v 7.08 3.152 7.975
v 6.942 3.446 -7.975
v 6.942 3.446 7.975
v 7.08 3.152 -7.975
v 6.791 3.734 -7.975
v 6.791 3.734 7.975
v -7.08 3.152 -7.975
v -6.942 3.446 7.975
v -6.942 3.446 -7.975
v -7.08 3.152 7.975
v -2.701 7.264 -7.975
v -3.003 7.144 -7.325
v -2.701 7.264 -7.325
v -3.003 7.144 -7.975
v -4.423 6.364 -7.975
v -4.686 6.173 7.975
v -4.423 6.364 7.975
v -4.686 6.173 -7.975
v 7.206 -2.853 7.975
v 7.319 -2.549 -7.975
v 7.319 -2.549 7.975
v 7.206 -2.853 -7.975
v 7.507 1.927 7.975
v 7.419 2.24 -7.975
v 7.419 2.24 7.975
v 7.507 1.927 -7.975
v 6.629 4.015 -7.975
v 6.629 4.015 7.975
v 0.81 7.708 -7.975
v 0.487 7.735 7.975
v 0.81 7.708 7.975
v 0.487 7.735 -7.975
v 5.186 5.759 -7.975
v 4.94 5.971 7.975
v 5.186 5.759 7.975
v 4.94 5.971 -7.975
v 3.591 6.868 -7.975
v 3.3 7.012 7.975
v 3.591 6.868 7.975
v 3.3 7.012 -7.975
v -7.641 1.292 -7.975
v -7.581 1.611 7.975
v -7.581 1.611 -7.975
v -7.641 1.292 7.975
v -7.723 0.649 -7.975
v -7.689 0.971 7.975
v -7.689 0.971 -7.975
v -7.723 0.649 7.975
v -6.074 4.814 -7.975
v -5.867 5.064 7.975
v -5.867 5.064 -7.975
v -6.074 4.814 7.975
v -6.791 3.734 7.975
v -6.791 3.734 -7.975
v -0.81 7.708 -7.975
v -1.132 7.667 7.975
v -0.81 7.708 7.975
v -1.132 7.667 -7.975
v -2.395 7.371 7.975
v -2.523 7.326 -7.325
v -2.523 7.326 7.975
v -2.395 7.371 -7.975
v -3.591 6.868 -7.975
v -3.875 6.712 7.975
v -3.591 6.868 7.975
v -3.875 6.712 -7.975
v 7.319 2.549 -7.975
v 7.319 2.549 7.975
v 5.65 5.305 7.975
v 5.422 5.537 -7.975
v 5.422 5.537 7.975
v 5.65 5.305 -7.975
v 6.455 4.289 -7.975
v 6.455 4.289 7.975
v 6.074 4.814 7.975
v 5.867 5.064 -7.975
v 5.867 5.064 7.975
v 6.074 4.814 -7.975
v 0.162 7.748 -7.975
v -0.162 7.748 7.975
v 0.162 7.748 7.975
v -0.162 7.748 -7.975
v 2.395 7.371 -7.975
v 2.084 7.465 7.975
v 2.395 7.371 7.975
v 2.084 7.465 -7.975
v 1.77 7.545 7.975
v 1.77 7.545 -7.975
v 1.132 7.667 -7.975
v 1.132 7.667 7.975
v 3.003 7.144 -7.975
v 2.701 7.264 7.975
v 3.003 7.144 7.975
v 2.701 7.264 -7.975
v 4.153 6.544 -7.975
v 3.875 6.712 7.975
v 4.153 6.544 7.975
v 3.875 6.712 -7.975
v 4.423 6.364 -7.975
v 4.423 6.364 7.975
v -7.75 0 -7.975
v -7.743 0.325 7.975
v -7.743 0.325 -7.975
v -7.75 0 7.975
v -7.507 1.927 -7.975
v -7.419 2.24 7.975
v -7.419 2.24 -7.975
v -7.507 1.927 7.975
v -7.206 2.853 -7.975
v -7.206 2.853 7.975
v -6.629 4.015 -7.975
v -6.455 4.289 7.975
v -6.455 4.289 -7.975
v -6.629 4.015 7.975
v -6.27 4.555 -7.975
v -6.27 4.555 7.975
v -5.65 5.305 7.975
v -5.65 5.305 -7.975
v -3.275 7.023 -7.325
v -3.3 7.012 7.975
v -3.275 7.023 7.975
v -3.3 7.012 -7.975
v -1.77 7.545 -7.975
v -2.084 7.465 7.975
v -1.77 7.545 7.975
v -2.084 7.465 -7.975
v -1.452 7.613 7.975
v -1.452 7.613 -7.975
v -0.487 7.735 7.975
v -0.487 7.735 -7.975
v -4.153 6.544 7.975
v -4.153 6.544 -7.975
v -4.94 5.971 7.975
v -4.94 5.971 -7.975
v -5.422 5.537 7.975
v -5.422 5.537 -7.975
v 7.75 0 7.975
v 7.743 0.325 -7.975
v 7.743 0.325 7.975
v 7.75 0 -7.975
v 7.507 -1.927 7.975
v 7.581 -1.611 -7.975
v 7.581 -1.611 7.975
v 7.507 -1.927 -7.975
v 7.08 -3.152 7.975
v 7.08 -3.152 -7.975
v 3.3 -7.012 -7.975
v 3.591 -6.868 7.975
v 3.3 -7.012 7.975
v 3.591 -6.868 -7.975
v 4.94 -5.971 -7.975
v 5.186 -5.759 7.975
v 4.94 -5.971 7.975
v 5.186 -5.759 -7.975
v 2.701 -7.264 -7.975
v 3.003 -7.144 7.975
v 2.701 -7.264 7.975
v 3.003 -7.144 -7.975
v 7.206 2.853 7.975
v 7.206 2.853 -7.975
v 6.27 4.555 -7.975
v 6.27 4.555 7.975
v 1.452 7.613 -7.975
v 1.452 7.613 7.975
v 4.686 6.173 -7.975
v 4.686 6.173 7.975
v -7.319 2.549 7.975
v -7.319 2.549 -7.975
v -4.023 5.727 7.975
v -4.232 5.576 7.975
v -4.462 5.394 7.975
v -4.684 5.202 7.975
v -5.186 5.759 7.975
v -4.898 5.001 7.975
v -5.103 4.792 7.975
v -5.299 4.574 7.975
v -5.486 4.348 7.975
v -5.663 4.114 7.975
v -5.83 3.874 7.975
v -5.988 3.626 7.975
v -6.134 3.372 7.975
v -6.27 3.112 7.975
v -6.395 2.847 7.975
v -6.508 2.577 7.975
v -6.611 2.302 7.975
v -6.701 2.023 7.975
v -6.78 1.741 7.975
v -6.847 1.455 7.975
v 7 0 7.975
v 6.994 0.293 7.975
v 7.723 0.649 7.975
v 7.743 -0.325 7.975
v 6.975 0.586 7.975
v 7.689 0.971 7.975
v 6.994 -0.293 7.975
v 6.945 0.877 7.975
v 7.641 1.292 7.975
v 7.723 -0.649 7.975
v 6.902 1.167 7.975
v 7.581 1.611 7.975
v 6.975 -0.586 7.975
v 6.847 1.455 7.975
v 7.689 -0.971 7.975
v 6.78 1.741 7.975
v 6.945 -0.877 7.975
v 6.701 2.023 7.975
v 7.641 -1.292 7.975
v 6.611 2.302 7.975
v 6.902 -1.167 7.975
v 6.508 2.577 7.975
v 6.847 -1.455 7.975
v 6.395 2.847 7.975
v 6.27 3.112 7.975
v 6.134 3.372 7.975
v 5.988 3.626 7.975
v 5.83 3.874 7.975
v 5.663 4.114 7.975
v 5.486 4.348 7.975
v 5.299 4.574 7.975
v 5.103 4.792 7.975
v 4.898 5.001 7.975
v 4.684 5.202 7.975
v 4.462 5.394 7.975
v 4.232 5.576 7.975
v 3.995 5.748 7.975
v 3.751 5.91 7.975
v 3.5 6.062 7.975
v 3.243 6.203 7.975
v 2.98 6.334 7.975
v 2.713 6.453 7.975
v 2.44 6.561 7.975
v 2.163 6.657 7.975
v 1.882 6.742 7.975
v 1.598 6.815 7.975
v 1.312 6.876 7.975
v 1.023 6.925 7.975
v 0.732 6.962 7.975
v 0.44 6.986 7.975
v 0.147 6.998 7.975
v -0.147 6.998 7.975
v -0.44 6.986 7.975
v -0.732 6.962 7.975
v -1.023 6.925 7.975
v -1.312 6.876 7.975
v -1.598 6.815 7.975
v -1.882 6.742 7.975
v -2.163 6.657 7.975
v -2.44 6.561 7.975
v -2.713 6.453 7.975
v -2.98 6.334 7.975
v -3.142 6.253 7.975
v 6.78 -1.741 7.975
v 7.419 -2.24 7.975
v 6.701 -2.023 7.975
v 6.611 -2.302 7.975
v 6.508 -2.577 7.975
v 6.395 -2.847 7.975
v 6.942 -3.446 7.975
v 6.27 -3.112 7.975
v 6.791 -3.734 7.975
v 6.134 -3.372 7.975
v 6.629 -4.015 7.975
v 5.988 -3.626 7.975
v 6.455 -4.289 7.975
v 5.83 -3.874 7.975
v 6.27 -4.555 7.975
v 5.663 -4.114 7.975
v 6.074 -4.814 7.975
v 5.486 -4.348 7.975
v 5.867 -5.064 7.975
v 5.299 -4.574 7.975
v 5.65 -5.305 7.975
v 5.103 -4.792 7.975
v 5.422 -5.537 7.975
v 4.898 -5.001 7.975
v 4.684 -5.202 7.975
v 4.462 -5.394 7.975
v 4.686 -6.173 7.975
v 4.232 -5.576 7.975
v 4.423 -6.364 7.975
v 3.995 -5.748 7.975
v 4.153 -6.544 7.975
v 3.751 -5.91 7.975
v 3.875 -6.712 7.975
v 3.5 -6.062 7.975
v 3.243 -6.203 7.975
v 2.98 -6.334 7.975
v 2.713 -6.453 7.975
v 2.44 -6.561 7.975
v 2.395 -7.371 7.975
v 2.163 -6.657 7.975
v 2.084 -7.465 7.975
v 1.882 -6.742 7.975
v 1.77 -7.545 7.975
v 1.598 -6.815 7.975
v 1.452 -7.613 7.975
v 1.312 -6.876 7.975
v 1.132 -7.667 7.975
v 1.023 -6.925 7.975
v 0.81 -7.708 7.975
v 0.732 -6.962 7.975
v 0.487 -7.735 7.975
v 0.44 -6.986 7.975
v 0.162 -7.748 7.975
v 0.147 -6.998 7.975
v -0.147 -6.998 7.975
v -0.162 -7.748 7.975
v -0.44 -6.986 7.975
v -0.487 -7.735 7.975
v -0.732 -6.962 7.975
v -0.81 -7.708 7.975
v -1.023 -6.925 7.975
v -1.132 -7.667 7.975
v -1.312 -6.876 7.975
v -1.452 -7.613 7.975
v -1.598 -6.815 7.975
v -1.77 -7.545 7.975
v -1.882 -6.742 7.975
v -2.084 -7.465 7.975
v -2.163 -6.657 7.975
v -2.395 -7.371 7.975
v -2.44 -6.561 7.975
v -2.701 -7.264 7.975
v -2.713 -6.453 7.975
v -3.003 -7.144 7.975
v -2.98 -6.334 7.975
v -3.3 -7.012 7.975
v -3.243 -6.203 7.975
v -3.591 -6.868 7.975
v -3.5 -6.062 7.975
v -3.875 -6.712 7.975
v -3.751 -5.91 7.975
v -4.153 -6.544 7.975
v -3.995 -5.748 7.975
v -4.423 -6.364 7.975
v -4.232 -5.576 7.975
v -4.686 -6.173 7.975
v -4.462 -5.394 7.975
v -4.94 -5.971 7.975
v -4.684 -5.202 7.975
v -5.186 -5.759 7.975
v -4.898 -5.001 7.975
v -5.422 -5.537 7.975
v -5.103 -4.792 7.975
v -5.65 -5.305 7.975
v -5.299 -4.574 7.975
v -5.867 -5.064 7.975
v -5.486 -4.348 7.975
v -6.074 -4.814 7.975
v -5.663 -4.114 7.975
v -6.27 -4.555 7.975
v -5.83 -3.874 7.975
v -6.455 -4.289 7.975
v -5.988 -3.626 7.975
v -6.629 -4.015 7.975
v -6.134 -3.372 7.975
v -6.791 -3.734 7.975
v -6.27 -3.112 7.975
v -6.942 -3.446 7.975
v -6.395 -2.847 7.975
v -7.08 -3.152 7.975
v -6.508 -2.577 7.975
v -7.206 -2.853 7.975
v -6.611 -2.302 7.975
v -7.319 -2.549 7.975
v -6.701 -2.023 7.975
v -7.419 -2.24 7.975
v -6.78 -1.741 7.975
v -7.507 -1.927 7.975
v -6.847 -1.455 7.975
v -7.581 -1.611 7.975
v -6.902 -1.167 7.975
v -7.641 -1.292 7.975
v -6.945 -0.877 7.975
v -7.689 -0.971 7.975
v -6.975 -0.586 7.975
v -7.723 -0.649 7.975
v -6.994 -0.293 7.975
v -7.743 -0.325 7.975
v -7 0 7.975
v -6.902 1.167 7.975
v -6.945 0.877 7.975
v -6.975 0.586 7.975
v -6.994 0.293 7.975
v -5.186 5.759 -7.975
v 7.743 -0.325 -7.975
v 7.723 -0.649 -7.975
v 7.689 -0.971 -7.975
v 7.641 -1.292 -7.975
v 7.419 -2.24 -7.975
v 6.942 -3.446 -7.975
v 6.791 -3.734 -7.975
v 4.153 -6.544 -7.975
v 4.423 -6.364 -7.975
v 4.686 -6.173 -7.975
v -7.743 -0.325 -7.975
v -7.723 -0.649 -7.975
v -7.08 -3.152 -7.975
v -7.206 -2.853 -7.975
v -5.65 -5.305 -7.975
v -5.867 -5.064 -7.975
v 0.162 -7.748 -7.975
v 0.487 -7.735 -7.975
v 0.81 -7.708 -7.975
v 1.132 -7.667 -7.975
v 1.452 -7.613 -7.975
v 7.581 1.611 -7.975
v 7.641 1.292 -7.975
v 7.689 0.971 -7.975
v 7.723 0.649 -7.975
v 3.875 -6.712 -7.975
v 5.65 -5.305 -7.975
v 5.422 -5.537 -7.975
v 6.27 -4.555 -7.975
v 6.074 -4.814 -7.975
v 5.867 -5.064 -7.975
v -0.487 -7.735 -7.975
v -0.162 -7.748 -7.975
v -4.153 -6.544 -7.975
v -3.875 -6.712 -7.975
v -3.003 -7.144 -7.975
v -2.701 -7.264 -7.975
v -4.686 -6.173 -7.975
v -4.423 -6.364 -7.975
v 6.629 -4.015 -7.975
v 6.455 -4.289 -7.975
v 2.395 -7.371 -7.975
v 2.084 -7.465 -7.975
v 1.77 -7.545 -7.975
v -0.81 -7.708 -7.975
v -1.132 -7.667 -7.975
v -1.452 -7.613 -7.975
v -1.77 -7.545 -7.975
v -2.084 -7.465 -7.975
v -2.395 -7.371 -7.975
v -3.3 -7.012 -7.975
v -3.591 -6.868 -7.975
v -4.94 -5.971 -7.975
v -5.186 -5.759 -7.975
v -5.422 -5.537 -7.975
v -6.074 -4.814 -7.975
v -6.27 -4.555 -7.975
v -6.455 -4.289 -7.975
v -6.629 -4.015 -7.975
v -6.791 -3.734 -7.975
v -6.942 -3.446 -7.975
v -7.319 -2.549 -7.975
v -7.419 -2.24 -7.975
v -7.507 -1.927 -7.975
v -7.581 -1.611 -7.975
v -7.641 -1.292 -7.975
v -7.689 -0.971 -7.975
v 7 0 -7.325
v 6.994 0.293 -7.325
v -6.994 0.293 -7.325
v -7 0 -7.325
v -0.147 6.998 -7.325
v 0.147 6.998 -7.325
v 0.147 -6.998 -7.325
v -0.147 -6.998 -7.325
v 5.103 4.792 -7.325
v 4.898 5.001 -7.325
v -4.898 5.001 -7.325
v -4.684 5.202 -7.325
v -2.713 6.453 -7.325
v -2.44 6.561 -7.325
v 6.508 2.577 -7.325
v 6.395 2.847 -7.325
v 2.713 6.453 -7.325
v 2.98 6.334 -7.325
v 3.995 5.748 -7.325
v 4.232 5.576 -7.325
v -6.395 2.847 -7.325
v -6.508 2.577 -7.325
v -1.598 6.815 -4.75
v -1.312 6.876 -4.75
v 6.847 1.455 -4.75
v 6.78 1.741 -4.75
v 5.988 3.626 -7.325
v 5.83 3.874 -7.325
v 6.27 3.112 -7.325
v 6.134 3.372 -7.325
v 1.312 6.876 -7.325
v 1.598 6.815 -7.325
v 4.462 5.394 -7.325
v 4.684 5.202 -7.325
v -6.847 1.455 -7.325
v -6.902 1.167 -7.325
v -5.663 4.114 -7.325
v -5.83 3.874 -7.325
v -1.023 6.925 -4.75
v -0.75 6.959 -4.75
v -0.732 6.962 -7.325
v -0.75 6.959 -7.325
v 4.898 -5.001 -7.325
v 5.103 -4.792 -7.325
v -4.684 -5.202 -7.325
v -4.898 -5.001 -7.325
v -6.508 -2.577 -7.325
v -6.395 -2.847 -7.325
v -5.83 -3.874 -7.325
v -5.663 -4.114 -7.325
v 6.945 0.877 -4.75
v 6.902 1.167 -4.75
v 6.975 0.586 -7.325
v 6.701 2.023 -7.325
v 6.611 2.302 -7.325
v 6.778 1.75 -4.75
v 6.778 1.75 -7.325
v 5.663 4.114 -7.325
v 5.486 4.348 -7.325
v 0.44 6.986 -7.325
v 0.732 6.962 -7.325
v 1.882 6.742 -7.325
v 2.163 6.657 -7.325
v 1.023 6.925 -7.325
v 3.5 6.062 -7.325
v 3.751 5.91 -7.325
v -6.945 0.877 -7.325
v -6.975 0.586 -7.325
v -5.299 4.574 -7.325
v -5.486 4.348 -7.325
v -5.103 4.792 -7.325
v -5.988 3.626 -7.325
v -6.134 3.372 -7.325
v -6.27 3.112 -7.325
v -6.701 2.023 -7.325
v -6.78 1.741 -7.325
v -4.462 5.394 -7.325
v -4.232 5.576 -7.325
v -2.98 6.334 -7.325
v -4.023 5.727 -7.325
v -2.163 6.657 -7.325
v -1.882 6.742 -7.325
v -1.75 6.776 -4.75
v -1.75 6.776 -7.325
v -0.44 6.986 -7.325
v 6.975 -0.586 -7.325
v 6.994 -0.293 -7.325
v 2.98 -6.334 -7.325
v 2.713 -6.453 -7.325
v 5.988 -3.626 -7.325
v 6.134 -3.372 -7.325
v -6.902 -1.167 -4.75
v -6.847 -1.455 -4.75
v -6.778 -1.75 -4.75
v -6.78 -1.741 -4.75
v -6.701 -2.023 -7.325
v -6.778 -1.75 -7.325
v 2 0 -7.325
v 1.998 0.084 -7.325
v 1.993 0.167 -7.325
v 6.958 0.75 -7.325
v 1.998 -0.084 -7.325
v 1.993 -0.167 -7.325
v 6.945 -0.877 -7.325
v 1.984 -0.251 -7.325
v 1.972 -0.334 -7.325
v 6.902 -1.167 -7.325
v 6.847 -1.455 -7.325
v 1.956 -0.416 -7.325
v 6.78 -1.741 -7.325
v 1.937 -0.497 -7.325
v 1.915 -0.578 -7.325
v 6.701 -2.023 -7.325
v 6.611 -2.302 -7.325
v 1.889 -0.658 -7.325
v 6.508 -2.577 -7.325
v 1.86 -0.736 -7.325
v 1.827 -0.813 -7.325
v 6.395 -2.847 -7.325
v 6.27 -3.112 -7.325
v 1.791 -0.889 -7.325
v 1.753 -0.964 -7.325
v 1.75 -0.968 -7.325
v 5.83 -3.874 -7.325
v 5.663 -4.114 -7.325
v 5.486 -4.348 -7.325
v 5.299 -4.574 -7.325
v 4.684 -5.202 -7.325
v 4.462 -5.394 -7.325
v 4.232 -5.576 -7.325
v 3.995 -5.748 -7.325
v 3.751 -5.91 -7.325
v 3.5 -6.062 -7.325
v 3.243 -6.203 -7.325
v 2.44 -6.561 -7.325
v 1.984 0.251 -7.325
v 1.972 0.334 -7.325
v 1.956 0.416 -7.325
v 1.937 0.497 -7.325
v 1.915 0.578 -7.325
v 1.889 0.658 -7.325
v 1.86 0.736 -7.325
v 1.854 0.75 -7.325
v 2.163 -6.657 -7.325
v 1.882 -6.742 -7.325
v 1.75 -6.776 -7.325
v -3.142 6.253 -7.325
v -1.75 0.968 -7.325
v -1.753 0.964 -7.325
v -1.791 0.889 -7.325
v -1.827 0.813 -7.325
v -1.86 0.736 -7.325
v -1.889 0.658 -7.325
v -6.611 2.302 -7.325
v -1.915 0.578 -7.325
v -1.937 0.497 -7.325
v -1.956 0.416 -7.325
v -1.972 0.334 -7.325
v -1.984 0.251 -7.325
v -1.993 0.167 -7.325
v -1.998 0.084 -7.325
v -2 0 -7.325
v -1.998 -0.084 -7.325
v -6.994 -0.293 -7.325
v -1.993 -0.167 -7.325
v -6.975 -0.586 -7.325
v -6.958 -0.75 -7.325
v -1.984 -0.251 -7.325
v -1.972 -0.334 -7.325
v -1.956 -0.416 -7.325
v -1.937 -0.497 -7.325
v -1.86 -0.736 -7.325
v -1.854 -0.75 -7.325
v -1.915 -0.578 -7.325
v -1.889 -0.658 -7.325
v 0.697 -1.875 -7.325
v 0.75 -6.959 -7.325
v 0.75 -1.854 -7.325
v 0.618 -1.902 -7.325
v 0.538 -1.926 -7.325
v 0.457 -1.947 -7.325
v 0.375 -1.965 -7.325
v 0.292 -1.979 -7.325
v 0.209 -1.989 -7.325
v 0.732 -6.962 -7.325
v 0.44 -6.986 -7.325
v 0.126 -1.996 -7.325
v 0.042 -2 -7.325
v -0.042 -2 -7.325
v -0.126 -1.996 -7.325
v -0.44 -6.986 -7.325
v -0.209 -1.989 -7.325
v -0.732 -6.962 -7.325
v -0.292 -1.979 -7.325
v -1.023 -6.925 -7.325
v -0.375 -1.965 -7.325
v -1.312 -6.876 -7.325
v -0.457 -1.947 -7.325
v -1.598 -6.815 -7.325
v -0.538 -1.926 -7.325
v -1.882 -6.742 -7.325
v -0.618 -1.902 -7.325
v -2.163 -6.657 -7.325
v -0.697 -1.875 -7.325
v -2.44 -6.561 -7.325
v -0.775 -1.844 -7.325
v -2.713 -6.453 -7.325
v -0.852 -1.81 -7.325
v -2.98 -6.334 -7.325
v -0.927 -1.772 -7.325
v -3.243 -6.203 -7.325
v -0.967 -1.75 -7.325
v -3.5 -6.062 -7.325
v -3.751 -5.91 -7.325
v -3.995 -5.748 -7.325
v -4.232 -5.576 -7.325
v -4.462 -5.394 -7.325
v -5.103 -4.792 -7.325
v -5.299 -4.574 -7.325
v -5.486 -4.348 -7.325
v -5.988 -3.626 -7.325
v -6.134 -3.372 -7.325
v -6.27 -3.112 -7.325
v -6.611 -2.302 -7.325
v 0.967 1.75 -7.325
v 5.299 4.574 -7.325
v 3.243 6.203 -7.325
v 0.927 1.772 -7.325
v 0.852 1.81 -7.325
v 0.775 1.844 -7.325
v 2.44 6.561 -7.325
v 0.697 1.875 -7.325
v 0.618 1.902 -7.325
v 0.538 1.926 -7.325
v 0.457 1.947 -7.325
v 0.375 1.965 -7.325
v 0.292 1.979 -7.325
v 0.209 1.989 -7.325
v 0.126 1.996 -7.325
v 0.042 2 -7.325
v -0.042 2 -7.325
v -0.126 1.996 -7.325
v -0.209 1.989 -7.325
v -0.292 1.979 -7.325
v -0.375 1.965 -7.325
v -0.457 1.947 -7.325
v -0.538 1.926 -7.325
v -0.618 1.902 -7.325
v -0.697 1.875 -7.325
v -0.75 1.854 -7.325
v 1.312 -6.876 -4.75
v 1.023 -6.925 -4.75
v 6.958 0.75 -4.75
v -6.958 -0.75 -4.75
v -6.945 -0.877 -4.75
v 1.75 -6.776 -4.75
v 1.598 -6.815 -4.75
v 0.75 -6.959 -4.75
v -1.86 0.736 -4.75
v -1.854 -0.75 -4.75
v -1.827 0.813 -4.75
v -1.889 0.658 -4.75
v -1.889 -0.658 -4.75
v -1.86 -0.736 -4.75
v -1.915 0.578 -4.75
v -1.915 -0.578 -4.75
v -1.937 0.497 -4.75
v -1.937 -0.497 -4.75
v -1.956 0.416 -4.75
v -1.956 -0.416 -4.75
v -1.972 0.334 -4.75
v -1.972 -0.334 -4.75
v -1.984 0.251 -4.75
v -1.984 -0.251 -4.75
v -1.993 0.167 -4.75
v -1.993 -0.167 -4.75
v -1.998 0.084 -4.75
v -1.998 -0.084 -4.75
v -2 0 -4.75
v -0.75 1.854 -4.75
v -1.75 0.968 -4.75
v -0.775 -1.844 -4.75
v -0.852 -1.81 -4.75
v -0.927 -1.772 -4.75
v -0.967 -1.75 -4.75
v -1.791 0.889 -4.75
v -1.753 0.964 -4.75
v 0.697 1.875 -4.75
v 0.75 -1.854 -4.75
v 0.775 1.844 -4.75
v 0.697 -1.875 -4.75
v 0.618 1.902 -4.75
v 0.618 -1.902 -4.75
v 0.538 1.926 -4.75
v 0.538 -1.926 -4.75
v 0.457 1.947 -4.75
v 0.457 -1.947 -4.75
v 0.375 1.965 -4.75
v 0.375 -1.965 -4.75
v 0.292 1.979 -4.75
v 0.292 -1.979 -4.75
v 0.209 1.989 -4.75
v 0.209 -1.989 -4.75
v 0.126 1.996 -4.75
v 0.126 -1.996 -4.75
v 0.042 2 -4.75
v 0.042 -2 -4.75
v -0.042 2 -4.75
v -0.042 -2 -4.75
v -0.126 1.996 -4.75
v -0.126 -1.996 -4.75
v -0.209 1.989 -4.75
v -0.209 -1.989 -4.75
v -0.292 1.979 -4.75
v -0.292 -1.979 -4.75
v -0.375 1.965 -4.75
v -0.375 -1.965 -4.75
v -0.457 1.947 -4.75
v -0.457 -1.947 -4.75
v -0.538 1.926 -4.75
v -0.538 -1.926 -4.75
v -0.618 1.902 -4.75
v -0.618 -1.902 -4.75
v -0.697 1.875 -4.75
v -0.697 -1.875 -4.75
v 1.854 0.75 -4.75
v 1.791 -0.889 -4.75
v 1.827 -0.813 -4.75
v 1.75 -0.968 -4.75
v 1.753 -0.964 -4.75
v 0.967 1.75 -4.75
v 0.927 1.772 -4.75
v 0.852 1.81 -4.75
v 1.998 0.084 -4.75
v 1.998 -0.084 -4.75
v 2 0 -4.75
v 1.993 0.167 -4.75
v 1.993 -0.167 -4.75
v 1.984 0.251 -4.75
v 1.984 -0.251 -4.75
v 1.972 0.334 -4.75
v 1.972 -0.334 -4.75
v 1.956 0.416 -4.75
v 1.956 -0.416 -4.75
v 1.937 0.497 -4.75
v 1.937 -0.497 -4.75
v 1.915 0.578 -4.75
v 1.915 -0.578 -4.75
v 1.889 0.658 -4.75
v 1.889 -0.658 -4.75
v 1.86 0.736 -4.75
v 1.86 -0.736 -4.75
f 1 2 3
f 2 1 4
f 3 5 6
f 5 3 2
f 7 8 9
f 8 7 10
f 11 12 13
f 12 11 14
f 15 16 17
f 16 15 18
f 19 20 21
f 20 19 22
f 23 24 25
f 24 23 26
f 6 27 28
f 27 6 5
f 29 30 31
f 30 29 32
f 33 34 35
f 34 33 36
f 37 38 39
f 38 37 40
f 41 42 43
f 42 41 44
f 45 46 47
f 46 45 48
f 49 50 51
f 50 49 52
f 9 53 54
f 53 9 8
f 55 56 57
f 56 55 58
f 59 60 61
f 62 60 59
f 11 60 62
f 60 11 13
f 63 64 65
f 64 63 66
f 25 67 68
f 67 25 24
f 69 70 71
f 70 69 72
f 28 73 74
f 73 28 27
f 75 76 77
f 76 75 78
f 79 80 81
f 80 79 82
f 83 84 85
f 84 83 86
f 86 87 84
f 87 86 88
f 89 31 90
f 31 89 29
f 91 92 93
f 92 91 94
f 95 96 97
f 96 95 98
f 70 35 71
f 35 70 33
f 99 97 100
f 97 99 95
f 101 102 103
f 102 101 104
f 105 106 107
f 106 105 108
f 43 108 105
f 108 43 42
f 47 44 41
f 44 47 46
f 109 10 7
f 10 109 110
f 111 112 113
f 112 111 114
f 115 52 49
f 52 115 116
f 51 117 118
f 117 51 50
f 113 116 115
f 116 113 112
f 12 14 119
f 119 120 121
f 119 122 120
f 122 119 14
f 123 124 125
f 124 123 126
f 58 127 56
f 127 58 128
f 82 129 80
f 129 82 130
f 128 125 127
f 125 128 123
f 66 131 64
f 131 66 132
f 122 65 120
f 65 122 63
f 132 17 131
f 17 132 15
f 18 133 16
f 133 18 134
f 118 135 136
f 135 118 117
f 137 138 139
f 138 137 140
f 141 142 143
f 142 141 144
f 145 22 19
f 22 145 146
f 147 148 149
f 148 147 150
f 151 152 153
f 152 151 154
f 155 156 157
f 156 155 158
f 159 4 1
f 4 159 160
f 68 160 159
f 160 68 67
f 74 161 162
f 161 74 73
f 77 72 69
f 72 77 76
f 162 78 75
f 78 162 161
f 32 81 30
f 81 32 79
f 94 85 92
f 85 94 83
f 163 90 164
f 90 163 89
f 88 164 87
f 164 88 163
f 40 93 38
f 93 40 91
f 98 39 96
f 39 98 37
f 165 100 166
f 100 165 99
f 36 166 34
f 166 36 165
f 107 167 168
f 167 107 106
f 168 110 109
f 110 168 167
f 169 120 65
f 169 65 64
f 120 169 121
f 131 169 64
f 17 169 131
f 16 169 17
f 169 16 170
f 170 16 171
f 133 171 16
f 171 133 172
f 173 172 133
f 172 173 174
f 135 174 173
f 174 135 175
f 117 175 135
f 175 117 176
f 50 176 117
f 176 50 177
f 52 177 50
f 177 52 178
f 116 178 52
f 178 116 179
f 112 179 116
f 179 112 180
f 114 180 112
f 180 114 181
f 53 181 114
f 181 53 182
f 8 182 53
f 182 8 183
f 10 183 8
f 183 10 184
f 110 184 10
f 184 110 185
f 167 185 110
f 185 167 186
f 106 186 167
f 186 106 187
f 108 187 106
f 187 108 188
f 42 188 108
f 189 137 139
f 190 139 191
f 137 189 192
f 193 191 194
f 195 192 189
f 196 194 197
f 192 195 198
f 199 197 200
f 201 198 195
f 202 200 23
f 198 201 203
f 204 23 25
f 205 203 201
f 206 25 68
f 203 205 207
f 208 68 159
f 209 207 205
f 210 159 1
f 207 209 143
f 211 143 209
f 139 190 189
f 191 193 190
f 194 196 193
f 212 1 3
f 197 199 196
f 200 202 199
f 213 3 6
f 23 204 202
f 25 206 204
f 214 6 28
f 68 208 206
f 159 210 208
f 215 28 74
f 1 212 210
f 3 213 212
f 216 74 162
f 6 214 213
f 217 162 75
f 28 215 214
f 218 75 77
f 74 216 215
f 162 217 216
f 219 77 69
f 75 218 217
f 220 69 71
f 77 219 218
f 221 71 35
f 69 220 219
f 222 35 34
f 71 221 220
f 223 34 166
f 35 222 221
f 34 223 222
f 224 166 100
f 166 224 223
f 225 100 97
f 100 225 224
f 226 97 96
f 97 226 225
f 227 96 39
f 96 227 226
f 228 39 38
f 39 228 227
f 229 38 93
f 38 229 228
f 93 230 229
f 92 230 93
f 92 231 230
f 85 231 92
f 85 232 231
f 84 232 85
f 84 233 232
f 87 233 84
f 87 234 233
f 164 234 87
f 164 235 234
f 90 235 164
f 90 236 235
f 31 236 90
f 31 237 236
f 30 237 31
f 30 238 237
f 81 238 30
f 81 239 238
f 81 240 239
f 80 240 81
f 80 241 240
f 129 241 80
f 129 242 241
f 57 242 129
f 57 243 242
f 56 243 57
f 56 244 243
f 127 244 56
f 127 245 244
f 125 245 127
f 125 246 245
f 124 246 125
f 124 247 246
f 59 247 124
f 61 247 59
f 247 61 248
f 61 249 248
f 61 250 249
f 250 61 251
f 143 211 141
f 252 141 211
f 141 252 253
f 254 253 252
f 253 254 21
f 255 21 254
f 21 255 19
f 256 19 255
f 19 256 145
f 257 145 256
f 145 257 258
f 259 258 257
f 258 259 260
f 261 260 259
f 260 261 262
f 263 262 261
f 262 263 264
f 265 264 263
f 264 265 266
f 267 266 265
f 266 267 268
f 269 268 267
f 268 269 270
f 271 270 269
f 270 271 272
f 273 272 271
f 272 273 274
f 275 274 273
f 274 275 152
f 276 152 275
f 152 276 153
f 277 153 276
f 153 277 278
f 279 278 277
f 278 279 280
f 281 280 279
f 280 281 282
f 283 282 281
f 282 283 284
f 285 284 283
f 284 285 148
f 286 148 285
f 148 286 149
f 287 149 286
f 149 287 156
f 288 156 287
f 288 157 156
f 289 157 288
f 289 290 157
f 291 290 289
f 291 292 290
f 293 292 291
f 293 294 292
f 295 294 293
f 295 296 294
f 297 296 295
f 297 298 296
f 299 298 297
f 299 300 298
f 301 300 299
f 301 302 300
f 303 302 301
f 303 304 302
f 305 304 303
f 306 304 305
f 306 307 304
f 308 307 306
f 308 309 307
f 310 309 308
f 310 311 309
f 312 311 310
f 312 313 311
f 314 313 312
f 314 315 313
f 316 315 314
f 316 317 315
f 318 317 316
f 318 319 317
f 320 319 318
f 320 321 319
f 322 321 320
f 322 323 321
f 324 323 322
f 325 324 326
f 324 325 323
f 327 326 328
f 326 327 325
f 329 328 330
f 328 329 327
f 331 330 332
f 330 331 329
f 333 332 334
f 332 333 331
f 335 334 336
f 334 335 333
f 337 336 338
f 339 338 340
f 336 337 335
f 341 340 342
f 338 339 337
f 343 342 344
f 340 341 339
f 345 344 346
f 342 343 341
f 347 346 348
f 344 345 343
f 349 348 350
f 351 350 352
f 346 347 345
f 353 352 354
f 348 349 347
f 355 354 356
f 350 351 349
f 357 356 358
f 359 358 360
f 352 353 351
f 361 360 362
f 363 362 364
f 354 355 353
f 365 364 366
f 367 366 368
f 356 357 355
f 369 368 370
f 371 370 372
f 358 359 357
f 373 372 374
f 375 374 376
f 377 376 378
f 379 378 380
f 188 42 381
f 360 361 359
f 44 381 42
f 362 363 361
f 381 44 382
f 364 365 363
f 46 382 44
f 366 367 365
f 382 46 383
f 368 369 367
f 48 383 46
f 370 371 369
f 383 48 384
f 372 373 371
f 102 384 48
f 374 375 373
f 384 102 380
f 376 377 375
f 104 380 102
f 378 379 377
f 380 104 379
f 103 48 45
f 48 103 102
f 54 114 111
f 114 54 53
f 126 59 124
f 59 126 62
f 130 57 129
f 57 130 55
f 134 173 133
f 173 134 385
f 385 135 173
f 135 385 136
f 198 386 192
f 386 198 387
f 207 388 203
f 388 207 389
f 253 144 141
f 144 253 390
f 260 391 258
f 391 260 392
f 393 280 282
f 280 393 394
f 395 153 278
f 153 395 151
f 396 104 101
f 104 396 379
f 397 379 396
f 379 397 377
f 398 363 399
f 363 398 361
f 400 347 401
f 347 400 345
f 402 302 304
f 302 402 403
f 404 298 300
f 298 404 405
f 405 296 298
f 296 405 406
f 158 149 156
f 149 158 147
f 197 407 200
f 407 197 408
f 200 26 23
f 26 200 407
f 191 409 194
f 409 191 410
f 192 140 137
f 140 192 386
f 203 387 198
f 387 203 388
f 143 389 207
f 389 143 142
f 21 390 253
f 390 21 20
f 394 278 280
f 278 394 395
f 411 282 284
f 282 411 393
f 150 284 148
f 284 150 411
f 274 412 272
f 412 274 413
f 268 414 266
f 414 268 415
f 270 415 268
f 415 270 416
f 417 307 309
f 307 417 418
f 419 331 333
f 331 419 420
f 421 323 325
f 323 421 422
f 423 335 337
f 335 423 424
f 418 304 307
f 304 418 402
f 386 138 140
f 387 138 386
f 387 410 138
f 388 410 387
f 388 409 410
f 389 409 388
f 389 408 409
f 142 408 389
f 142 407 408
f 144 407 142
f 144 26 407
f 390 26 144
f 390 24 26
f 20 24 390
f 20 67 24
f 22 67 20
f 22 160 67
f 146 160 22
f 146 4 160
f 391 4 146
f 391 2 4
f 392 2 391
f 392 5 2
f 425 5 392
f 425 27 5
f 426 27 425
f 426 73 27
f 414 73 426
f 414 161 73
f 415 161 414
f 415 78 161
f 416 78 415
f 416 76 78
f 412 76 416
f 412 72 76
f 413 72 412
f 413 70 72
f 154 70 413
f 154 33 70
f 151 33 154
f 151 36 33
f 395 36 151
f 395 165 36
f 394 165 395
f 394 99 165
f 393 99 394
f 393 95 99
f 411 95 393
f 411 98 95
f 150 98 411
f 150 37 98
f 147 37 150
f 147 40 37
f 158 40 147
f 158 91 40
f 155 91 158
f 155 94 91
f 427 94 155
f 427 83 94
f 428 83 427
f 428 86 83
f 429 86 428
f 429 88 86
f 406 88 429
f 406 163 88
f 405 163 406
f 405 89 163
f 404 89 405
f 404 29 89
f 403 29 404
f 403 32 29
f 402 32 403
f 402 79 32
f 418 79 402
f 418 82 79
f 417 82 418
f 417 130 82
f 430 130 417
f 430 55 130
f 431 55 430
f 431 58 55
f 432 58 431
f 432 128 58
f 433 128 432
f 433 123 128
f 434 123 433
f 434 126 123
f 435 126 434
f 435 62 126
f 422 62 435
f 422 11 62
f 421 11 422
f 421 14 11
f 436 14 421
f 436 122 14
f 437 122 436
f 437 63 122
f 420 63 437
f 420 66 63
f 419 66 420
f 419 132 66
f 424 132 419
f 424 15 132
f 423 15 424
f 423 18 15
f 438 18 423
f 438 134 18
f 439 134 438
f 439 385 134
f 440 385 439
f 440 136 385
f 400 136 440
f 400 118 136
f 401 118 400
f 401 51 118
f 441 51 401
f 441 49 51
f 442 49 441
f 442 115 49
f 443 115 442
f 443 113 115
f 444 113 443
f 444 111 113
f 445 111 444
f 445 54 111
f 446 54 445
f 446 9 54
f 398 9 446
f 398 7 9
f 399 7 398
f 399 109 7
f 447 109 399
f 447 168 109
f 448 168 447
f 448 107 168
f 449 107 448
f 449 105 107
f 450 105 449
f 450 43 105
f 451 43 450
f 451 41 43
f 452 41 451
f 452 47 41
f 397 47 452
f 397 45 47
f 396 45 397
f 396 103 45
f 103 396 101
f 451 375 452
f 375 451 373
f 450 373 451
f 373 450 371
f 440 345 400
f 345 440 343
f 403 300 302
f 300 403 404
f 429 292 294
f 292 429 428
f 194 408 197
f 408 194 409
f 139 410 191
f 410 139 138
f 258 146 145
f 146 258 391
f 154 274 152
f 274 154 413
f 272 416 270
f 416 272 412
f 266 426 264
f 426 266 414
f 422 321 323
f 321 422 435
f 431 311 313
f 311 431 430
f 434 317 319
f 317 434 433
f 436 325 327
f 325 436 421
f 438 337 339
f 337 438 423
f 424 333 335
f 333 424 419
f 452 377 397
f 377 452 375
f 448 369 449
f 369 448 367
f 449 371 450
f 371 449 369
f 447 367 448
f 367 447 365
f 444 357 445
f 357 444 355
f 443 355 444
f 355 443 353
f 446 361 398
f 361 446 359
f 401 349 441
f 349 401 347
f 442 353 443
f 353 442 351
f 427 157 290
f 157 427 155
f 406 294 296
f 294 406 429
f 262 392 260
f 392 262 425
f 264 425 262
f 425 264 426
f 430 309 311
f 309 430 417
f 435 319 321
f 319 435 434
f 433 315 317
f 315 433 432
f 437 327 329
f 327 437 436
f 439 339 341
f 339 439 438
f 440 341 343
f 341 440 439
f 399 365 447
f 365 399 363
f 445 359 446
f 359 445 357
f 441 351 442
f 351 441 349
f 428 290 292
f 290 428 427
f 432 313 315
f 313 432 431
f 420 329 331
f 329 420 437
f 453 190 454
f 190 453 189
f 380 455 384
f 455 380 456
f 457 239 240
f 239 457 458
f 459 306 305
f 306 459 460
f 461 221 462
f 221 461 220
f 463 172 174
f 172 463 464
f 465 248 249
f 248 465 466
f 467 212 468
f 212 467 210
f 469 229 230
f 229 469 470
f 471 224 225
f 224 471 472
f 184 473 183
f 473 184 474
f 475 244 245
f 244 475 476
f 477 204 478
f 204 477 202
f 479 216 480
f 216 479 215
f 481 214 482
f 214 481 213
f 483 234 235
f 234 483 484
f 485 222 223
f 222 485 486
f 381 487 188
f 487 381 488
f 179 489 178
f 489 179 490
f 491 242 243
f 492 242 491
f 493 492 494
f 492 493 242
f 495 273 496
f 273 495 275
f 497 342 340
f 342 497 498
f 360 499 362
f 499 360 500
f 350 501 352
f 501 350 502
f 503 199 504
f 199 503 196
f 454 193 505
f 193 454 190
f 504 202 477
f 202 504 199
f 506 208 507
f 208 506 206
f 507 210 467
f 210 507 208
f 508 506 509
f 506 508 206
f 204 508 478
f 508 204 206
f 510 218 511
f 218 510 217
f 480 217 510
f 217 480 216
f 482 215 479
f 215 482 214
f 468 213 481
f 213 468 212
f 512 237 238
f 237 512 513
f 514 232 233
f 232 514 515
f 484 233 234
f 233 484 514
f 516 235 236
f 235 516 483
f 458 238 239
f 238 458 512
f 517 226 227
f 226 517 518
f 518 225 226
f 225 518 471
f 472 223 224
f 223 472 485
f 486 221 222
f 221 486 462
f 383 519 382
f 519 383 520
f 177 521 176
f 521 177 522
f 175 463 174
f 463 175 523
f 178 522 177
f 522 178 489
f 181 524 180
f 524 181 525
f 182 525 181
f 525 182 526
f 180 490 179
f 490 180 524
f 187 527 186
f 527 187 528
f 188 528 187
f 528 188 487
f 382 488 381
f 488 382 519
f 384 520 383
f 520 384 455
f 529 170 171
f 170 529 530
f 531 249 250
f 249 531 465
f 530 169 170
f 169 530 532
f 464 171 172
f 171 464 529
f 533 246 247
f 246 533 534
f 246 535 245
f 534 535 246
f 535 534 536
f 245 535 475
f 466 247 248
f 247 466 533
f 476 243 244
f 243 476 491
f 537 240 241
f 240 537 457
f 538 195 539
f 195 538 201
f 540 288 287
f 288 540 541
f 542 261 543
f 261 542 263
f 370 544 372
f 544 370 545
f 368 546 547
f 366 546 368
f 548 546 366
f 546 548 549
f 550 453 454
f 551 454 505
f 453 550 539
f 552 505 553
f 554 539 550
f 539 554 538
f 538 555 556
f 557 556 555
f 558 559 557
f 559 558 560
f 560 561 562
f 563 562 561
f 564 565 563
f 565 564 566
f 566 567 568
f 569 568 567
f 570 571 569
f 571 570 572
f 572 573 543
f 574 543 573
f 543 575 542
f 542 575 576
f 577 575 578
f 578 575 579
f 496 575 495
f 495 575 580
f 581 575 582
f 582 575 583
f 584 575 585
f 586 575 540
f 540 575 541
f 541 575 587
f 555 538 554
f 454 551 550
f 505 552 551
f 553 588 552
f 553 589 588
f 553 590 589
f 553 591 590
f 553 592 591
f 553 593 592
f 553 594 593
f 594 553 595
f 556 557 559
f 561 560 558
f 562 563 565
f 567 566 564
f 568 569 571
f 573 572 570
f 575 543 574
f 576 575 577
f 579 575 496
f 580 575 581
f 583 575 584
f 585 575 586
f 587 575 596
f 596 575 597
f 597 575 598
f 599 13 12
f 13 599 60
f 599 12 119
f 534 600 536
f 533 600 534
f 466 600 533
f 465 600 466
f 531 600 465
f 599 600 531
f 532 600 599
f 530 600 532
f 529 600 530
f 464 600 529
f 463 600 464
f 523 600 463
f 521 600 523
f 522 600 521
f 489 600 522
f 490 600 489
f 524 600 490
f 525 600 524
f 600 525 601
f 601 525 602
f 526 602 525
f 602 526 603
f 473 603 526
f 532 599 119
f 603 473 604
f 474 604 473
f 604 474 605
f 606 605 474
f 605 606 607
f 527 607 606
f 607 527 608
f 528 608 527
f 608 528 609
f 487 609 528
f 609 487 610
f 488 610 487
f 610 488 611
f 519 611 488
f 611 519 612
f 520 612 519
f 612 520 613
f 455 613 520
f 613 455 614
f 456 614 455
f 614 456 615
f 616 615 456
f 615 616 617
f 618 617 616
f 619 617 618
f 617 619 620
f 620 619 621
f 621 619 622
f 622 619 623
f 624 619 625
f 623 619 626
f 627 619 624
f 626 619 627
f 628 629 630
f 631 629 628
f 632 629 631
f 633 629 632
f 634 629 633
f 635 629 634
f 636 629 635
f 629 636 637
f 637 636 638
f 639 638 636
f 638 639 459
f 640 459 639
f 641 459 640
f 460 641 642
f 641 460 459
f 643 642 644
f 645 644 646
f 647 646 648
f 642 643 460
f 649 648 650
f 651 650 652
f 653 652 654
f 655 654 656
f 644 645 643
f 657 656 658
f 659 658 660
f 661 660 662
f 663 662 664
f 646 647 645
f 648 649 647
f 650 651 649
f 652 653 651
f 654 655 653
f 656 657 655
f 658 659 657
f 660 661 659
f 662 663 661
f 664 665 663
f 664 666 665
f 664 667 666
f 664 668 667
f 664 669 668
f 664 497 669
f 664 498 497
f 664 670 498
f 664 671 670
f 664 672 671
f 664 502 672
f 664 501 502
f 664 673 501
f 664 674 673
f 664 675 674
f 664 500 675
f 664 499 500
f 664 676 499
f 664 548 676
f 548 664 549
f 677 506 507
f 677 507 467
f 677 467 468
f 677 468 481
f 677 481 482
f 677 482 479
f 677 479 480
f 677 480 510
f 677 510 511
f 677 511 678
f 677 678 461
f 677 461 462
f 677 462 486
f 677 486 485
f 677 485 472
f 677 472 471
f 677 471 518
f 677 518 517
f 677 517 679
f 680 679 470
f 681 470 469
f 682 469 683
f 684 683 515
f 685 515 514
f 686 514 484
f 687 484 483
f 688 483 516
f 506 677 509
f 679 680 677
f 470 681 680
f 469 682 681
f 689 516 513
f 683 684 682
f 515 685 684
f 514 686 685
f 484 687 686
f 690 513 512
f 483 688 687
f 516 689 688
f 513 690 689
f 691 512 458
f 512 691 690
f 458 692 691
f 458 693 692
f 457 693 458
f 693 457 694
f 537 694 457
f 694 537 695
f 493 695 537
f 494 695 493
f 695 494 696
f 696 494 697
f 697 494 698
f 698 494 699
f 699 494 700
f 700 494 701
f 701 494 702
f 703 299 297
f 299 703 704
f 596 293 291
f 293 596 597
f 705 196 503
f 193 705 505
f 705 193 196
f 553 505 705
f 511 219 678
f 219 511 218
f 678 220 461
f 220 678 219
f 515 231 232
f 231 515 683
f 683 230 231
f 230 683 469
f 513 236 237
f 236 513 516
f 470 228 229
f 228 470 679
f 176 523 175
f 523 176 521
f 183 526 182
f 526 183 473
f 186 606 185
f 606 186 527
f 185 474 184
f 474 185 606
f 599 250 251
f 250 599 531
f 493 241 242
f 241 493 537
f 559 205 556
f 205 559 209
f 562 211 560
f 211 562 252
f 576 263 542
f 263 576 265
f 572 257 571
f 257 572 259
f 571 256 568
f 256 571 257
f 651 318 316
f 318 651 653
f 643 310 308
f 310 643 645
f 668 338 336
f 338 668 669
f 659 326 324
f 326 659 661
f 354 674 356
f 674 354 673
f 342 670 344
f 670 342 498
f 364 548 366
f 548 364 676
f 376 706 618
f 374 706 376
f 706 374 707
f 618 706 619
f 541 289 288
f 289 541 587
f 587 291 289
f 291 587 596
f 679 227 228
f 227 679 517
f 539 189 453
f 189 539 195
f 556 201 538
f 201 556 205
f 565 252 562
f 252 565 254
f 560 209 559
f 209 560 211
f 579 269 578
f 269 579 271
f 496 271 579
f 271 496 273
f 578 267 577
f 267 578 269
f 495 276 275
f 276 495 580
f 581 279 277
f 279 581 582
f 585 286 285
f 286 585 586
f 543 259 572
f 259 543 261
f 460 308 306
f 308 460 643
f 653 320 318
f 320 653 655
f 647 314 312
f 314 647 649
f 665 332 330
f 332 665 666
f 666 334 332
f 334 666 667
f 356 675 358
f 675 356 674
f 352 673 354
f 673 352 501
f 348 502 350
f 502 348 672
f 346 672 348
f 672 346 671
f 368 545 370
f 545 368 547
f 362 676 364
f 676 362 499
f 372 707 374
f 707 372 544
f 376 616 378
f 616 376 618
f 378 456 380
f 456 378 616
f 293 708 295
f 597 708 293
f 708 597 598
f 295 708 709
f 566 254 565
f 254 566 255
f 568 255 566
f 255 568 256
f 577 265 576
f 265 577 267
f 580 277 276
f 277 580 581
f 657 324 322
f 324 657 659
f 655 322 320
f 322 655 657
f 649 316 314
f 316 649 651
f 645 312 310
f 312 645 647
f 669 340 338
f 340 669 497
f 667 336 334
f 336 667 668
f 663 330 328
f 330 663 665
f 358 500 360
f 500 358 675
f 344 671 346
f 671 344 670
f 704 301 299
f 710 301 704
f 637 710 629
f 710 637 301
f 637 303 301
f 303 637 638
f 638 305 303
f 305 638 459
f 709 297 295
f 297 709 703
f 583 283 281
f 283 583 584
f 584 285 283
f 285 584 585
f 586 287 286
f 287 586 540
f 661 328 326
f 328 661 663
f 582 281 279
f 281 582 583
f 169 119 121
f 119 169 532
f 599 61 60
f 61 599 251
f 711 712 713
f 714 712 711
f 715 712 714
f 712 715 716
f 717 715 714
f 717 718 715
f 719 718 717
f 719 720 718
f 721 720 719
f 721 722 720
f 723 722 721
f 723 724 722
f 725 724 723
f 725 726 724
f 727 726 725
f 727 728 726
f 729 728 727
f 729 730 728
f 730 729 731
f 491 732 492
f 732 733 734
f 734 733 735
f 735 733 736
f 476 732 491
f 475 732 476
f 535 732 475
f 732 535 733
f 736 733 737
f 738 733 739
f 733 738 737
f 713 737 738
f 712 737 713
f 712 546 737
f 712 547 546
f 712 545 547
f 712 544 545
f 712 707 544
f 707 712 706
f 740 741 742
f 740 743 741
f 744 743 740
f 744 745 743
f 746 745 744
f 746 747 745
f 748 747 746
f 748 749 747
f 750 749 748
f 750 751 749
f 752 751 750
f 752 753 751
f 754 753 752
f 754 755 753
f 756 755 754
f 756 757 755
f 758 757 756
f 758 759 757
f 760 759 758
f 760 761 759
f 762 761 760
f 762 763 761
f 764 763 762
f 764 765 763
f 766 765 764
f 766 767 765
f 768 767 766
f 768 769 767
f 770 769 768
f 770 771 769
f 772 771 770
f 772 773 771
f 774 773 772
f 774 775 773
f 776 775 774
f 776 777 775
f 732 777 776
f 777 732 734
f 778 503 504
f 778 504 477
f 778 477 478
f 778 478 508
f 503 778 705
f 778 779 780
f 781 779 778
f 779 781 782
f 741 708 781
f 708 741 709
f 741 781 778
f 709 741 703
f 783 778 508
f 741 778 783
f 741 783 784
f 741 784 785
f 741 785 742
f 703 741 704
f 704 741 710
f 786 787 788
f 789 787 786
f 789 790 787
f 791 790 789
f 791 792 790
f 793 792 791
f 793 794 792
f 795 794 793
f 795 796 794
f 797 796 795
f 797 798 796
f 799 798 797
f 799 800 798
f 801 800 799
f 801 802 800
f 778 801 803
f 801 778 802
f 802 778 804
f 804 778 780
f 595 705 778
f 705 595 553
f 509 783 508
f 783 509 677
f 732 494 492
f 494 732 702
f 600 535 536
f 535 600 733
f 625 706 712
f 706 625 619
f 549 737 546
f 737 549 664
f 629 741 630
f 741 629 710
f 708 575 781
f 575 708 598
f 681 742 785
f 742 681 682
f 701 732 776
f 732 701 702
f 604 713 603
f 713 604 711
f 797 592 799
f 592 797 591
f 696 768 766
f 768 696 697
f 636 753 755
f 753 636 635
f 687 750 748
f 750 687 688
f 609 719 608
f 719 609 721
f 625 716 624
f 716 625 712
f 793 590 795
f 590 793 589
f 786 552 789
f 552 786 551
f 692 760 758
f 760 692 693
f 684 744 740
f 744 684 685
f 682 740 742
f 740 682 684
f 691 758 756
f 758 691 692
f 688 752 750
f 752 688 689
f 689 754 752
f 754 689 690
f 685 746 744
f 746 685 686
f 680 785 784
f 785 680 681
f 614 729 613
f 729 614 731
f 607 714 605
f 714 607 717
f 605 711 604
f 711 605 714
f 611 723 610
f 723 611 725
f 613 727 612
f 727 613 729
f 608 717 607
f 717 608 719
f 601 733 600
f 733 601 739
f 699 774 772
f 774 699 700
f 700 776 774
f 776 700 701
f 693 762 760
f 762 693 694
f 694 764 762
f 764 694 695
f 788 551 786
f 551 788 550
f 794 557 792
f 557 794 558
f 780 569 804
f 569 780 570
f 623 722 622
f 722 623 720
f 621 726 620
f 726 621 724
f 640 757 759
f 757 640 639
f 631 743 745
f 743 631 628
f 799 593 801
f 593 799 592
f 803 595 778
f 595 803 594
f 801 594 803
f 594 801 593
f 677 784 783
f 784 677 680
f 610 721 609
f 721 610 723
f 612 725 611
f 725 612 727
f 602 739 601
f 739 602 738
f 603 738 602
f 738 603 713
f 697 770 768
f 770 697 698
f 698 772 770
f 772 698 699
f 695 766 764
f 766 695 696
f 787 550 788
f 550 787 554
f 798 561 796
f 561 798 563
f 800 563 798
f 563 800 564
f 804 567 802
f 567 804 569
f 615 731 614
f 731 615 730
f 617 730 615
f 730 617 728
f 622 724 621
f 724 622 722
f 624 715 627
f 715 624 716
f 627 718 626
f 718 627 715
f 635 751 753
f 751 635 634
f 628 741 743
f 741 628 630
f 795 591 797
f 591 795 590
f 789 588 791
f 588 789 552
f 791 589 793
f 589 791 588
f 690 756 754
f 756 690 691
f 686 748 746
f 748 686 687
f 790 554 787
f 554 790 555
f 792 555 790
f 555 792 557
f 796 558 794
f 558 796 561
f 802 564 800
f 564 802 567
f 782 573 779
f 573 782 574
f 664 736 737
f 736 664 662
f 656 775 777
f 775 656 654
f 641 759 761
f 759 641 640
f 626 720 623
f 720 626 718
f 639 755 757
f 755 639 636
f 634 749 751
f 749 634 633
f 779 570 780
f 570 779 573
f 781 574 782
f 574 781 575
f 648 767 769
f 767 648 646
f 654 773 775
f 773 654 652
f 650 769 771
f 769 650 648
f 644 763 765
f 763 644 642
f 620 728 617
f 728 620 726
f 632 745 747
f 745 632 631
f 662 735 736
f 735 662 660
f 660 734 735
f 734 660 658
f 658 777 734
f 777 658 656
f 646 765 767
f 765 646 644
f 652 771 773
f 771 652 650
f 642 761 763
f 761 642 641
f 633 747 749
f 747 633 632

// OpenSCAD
// file: ../../libraries/Minolta16.scad
/**
 * Variables for the Minox16 camera
 **/

$fn = 150;

SPACING = 42;
WALL_THICKNESS = 1.25 + .5;

PLANE_BACK = 1.55;

CART_H = 16.85 + .75;

FEED_D = 19.14;
TAKEUP_D = 22.04;

TAKEUP_OFFSET_Y = -(TAKEUP_D - FEED_D) / 2;

CONNECT_X = SPACING - (TAKEUP_D / 2) - (FEED_D / 2) + 2;
CONNECT_Y = 8.85;
CONNECT_Z = 1.3;

CONNECT_OFFSET_X = ((TAKEUP_D / 2) - (FEED_D / 2)) / 2;
CONNECT_OFFSET_Y = (FEED_D / 2) - (CONNECT_Y / 2) - 5.02;
CONNECT_OFFSET_Z = -(CART_H / 2) + (CONNECT_Z / 2);

FILM_NEG_Y = .75;

FILM_NEG_OFFSET_Y = 8.5;

CAP_LIP_H = 5.92;
CAP_LIP = .56;
CAP_THICKNESS = .5;

TOP_H = 1;
// main file
include <../../libraries/Minolta16.scad>;

time=0;

module minolta16_cart_takeup () {
        H = 15.95;
        D = 15.5;
        INNER_D = 14;
        difference() {
            cylinder(r = D / 2, h = H, center = true);
            translate([0, 0, .65]) cylinder(r = INNER_D / 2, h = H, center = true);
			translate([-3, 7, .65]) rotate([0, 0, 60]) cube([10, .5, H], center = true);
        }
        translate([0, 0, -(D / 2) + 1.5]) cylinder(r = 2, h = 3, center = true);
        for (i = [0:3]) {
            rotate([0, 0, i * 90]) translate([(D / 4) - .75, 1.25, -(D / 2) + 1.5]) cube([(D / 2) + 1, 1, 3], center = true);
        }
		
}

module minolta16_cart_takeup_cap () {
  INNER_D = TAKEUP_D - WALL_THICKNESS;
  difference () {
    union () {
        cylinder(r = TAKEUP_D / 2, h = 1, center = true);
        translate([TAKEUP_D / 4, TAKEUP_D / 4, 0]) {
            cube([TAKEUP_D / 2, TAKEUP_D / 2, 1], center = true);
        }
        translate([0, 0, -1.5]) cylinder(r = (13.87 / 2) + .2, h = 3, center = true);
    }
    translate([0, 0, .65]) cylinder(r = (13.87 / 2) - .5, h = 100, center = true);
  }
  translate([(TAKEUP_D / 2) - 1, 7.5, -1]) cube([1.8, 1.8, 1.8], center = true);
}

rotate([0, 0, time]) minolta16_cart_takeup();
